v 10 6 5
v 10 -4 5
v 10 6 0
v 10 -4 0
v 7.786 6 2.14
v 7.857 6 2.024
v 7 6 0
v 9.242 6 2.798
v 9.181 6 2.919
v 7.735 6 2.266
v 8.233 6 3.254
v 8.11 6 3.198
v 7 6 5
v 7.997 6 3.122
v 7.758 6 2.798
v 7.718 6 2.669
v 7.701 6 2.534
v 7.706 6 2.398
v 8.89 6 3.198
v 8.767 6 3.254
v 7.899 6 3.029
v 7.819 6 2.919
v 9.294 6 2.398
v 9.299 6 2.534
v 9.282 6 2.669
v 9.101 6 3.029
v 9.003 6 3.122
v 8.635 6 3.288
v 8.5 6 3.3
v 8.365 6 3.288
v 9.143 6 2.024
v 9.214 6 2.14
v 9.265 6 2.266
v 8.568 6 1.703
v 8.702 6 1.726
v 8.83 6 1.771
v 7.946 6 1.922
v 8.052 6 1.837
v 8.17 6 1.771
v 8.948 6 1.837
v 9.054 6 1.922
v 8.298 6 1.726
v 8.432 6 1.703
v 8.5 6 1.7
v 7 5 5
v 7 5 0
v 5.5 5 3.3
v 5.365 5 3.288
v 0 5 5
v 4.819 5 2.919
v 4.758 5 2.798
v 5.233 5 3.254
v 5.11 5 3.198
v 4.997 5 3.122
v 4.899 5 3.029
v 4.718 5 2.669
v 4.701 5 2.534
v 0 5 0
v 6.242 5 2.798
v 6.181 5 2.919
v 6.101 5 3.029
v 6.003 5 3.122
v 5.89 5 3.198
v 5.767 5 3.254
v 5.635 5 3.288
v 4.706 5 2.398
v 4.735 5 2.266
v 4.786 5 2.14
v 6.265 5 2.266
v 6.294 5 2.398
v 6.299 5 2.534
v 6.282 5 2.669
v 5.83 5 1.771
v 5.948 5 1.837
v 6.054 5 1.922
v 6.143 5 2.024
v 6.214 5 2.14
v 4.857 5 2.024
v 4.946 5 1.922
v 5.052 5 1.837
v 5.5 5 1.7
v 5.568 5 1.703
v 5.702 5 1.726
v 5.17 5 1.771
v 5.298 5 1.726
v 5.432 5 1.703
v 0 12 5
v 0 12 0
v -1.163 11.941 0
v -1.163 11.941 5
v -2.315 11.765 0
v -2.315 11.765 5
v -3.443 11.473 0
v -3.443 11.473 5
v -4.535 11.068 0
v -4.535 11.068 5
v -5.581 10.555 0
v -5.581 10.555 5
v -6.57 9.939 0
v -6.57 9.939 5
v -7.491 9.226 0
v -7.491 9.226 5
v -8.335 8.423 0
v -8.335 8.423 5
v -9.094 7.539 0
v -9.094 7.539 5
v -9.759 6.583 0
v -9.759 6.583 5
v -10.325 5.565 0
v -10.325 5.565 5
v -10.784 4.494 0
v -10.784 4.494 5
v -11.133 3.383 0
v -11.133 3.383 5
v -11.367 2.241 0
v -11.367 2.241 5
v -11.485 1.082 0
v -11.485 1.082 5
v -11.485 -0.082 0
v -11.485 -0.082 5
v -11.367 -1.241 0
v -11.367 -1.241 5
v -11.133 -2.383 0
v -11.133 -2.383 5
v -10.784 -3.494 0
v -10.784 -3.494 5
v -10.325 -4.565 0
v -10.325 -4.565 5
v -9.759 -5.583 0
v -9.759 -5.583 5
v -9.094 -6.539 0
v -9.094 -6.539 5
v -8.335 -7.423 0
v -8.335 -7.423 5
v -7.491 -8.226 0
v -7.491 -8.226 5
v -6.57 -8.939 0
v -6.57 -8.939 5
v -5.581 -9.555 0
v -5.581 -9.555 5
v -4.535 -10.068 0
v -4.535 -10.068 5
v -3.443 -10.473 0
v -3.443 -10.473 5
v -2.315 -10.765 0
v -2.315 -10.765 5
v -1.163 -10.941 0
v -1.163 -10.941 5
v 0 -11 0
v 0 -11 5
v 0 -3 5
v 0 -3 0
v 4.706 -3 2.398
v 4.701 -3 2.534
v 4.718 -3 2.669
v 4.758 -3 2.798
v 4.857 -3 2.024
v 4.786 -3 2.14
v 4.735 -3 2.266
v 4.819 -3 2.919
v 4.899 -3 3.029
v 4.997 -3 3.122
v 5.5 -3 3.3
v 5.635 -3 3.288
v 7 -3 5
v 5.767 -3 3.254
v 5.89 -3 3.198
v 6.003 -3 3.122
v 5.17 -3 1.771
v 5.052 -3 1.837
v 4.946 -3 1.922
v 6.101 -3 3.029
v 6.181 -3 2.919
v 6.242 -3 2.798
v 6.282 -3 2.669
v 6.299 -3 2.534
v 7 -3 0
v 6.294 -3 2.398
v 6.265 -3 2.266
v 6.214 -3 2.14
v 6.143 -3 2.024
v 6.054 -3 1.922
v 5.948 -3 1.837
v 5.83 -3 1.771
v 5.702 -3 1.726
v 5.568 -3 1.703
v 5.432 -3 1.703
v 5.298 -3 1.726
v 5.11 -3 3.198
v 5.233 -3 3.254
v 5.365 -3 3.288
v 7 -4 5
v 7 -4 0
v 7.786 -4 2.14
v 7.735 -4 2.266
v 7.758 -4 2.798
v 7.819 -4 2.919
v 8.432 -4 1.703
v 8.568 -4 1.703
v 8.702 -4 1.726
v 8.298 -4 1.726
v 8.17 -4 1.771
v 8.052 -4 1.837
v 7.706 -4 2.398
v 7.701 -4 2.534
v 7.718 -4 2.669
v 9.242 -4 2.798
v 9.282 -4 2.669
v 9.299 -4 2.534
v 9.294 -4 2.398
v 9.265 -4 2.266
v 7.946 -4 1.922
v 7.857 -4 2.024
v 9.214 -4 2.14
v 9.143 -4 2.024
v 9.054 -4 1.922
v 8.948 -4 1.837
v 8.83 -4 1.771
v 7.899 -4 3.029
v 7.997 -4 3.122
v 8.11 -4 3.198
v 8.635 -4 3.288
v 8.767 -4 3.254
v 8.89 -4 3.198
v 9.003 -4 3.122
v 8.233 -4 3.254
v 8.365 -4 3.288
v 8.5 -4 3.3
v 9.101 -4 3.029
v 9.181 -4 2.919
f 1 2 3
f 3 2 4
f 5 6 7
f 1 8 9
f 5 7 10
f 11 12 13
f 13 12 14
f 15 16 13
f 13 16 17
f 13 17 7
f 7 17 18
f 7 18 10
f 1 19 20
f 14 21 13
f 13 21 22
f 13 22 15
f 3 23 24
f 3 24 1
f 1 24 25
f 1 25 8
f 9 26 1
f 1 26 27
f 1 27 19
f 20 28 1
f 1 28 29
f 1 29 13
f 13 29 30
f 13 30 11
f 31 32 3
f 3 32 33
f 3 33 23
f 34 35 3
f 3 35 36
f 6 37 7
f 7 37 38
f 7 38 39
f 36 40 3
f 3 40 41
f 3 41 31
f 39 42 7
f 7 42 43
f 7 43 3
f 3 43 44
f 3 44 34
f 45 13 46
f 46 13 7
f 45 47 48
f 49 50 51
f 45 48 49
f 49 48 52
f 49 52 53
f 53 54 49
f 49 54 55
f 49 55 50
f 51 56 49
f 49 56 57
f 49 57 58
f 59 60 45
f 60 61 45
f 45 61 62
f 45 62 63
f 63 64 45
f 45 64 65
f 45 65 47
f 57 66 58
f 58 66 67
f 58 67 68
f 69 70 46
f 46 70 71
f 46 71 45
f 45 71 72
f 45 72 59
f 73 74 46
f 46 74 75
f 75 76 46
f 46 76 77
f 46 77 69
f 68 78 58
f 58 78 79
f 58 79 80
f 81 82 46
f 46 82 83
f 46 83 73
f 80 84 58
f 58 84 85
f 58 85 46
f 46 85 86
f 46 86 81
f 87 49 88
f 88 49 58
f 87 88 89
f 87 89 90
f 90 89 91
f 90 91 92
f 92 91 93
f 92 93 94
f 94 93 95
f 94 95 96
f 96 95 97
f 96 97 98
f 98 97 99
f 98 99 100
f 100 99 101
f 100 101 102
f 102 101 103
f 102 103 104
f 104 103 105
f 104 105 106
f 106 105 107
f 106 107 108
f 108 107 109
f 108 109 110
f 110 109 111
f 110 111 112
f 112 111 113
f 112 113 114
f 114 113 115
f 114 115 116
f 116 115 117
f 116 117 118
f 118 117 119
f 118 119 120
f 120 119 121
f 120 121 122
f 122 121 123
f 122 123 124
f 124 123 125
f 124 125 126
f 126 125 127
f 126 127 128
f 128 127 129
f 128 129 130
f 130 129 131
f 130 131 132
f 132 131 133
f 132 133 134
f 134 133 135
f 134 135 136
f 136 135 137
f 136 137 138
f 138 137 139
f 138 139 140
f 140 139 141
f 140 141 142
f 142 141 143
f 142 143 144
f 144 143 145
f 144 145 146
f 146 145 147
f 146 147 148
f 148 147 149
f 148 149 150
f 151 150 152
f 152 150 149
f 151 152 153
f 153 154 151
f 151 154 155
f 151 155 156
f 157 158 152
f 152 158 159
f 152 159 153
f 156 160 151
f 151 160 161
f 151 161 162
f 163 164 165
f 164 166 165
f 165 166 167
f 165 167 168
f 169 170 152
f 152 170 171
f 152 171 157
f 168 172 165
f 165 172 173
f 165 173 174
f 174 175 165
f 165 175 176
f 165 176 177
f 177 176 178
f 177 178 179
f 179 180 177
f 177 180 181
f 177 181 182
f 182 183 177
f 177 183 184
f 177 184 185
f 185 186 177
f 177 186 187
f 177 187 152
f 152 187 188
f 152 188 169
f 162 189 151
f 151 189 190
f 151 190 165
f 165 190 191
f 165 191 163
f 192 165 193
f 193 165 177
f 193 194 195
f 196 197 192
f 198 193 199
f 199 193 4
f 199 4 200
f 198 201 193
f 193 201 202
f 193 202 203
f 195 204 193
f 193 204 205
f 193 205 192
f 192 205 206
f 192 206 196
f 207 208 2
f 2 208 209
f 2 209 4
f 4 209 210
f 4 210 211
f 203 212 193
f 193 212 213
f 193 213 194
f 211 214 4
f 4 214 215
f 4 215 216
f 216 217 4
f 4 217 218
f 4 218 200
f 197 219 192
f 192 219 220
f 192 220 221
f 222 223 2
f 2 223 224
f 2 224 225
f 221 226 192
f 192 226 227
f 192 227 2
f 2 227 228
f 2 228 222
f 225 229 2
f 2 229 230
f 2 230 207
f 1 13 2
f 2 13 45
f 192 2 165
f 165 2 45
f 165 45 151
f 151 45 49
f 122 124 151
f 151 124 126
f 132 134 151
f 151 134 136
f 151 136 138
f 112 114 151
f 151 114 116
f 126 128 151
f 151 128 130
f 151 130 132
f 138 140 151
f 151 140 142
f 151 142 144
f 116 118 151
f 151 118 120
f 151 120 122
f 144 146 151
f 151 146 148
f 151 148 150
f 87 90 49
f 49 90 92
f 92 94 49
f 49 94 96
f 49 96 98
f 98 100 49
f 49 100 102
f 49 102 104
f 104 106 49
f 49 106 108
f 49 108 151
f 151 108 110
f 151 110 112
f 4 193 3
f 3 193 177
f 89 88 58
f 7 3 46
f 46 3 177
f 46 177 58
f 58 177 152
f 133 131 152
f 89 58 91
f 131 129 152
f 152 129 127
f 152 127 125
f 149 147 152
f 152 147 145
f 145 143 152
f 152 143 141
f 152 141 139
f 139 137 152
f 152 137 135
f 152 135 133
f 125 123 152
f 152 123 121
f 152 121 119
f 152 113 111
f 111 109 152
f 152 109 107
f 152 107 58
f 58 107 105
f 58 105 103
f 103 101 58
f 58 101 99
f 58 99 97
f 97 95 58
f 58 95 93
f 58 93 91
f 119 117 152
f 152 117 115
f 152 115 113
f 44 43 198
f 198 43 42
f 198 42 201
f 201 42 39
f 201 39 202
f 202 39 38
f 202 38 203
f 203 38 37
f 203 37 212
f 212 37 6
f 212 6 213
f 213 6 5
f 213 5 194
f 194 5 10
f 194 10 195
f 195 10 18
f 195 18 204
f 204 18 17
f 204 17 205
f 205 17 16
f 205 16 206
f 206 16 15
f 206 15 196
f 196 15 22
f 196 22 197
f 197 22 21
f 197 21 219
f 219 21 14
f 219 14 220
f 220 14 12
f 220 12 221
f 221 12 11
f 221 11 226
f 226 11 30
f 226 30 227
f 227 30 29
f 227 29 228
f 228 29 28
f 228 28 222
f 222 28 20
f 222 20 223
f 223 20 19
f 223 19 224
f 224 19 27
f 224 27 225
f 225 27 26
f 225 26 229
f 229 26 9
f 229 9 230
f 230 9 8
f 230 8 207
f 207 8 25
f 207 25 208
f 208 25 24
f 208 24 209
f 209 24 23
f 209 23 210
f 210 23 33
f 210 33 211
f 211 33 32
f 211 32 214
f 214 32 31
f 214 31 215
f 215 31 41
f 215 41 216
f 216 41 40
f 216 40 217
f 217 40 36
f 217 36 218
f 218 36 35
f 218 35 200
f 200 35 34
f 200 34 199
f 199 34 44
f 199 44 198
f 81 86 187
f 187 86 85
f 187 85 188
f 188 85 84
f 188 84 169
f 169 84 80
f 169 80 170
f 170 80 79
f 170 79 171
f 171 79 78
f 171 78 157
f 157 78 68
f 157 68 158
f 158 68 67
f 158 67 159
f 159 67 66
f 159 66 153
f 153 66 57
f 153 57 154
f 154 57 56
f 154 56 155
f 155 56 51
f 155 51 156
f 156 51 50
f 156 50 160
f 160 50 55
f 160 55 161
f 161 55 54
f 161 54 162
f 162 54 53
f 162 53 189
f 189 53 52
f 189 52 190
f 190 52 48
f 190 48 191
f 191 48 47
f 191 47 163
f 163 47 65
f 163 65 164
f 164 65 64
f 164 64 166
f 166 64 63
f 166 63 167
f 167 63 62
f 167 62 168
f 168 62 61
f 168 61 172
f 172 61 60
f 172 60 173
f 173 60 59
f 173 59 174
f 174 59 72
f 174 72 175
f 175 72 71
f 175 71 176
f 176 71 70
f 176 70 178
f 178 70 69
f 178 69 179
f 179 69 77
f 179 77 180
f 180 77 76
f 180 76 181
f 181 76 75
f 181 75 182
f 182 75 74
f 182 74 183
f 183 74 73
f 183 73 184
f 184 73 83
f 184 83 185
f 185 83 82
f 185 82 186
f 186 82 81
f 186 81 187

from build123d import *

# Parameters (mm, degrees)
BOSS_EXTRUDE1_DEPTH = 5
CUT_EXTRUDE1_START  = 11
SKETCH2_R           = 0.8
CUT_EXTRUDE1_DEPTH  = 23


with BuildPart() as part:
    # Sketch1 → Boss-Extrude1 (new body)
    with BuildSketch(Plane.XY):
        with BuildLine():
            Line((0, -11), (0, -3))
            Line((0, -3), (7, -3))
            Line((7, -3), (7, -4))
            Line((7, -4), (10, -4))
            Line((10, -4), (10, 6))
            Line((10, 6), (7, 6))
            Line((7, 6), (7, 5))
            Line((7, 5), (0, 5))
            Line((0, 5), (0, 12))
            ThreePointArc((0, 12), (-11.5, 0.5), (0, -11))
        make_face()
    extrude(amount=BOSS_EXTRUDE1_DEPTH)

    # Sketch2 → Cut-Extrude1 (cut, through all)
    with BuildSketch(Plane(origin=(0, 0, 0), x_dir=(1, 0, 0), z_dir=(0, 1, 0)).offset(CUT_EXTRUDE1_START)):
        with Locations((8.5, -2.5)):
            Circle(SKETCH2_R)
        with Locations((5.5, -2.5)):
            Circle(SKETCH2_R)
    extrude(amount=-CUT_EXTRUDE1_DEPTH, mode=Mode.SUBTRACT)


solid = part.part
